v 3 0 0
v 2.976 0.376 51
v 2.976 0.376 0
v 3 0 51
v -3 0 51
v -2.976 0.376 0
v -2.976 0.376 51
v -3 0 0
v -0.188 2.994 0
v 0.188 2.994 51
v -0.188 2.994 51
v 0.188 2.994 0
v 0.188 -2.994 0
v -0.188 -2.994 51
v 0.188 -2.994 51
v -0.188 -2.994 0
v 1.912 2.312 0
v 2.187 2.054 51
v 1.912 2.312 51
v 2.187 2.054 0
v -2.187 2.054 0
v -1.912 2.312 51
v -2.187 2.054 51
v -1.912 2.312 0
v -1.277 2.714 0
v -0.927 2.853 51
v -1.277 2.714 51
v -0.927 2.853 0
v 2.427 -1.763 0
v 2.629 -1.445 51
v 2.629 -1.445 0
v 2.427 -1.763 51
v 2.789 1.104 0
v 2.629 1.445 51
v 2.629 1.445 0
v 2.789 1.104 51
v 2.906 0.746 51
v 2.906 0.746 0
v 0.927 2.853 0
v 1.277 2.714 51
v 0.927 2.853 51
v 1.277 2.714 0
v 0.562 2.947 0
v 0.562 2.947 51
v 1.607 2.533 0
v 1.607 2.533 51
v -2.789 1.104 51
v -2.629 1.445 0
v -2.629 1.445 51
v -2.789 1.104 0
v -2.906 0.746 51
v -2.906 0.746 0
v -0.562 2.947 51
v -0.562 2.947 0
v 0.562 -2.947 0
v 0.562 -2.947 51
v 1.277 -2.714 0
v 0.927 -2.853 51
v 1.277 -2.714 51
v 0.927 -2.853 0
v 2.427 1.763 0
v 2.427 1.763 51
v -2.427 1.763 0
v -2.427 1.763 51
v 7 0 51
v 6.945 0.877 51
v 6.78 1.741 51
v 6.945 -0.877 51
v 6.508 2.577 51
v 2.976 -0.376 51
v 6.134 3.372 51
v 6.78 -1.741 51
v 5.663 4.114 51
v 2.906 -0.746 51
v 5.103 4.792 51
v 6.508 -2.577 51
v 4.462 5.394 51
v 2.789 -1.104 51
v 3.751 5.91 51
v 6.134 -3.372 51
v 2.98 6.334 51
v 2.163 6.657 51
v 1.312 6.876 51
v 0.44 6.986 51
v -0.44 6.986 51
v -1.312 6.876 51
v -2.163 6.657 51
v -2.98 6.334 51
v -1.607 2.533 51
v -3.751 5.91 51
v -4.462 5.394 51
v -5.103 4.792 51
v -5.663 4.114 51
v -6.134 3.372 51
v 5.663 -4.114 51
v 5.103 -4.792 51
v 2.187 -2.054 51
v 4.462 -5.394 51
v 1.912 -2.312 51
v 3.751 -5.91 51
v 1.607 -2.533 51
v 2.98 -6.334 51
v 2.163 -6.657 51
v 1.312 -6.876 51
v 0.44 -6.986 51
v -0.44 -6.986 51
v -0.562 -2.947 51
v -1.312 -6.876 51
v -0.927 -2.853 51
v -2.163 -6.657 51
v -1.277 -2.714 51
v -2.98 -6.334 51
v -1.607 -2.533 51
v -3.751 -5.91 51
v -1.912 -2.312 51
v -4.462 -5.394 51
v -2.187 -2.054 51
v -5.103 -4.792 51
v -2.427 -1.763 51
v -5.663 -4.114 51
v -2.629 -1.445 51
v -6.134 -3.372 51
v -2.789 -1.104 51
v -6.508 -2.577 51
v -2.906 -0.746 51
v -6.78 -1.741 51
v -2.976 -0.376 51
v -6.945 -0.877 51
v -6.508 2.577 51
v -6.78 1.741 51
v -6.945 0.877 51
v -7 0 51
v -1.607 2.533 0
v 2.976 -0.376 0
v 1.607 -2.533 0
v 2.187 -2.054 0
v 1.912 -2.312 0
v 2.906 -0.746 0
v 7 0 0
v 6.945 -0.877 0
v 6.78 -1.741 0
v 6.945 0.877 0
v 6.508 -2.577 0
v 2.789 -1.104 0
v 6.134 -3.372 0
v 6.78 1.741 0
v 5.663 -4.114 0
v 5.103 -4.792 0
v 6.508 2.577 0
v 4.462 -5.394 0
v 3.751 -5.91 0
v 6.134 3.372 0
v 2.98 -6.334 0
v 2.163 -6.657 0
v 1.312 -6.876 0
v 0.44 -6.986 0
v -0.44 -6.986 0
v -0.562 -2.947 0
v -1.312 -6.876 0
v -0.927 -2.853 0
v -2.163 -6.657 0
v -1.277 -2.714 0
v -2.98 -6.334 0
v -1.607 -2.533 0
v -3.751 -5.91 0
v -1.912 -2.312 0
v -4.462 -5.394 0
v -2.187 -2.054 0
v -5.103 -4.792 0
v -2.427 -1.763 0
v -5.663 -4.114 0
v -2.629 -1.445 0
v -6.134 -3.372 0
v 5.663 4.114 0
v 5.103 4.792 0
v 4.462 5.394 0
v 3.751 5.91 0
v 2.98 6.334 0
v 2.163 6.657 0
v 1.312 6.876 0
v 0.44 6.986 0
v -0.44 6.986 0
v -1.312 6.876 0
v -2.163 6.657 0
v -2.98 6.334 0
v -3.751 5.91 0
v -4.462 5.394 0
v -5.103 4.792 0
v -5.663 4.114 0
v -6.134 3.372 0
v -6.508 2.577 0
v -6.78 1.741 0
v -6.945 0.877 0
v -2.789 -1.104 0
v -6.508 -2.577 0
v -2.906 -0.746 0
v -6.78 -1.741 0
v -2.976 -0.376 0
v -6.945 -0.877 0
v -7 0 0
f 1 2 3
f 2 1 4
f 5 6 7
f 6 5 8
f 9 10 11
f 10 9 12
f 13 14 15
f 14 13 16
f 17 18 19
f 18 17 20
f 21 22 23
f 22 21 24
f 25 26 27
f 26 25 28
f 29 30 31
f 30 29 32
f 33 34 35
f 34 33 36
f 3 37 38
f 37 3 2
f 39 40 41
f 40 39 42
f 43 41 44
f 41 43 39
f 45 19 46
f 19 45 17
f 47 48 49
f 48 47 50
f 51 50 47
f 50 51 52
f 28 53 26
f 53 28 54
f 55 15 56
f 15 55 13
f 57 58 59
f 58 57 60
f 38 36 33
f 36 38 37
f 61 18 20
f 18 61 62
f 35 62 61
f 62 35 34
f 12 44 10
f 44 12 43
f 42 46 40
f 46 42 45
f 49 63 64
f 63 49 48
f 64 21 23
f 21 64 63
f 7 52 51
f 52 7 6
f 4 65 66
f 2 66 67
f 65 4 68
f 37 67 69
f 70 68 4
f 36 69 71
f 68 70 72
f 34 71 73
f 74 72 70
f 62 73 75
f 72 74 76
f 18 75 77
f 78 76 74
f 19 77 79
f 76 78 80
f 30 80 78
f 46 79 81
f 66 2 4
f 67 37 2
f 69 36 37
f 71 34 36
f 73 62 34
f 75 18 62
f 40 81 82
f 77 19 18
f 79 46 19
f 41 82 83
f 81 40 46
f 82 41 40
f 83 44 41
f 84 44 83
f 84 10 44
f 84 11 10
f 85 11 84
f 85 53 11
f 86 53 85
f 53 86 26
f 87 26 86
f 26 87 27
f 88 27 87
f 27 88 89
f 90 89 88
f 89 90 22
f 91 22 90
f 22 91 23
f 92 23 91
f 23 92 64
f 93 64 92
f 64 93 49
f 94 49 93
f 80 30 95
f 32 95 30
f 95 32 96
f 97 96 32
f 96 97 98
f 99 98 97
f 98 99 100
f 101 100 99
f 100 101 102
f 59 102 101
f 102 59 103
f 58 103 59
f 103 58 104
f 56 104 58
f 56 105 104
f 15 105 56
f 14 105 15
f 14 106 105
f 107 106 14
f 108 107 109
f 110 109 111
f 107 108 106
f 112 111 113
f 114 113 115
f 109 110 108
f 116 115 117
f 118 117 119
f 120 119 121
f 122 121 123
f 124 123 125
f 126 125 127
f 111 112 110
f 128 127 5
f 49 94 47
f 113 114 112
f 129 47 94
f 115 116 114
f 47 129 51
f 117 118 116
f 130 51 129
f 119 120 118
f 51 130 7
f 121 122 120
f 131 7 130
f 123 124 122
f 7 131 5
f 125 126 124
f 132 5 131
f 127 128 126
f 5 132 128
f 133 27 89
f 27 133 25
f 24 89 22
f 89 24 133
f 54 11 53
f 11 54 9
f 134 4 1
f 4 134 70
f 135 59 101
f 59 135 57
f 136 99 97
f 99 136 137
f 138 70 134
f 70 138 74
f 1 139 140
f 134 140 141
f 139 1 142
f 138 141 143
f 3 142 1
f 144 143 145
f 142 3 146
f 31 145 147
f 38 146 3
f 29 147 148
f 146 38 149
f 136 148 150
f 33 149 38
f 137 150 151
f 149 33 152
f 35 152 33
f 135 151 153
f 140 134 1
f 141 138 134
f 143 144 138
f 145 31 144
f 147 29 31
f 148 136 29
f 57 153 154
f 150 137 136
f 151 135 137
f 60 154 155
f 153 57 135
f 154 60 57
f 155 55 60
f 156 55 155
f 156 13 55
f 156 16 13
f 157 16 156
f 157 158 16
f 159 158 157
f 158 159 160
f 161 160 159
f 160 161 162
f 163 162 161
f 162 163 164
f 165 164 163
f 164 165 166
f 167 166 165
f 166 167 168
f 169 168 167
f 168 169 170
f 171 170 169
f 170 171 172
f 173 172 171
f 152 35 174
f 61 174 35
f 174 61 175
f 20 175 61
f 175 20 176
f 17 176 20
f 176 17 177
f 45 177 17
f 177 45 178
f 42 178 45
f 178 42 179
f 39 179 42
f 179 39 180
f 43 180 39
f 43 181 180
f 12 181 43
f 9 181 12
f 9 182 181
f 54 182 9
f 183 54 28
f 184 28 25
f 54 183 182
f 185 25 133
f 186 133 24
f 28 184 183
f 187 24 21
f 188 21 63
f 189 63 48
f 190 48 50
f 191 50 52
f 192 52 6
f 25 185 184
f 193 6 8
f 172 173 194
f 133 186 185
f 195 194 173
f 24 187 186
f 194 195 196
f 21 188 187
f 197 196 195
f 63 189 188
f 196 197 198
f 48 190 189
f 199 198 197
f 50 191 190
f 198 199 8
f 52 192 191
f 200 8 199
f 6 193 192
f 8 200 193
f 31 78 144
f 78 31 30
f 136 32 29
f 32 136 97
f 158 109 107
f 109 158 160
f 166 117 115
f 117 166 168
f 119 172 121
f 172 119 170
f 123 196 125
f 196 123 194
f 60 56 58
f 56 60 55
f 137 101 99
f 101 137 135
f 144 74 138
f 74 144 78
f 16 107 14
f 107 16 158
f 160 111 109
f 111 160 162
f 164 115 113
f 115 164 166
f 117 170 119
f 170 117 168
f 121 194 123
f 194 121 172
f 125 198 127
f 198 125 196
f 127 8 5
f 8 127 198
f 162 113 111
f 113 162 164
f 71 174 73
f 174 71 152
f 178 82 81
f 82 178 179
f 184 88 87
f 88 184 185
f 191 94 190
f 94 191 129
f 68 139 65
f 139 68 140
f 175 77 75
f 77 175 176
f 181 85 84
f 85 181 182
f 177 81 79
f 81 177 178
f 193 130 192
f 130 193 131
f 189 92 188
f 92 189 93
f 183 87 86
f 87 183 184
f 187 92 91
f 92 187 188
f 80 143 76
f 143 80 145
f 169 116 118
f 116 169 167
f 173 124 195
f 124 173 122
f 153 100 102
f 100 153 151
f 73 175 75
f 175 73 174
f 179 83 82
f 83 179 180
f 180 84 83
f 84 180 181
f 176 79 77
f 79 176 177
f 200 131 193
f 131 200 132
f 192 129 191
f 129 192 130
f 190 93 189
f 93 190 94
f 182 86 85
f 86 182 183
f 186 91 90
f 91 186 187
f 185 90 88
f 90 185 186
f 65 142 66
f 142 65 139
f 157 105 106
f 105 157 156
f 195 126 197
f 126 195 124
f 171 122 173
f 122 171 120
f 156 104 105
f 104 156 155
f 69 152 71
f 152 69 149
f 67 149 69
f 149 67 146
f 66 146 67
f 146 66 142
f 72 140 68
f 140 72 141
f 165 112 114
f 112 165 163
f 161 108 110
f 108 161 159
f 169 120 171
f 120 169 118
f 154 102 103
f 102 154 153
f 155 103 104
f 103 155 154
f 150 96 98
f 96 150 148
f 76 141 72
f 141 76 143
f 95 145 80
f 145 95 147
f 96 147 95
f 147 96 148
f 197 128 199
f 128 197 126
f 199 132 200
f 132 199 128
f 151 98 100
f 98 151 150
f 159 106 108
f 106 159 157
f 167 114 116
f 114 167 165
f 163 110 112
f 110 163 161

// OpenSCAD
$fn = 50;


difference() {
	union() {
		cylinder(h = 51, r = 7.0000000000);
	}
	union() {
		cylinder(h = 51, r = 3.0000000000);
		cylinder(h = 51, r = 3.0000000000);
		cylinder(h = 51, r = 1.5000000000);
		cylinder(h = 51, r = 1.5000000000);
		cylinder(h = 51, r = 1.5000000000);
		cylinder(h = 51, r = 1.5000000000);
		cylinder(h = 51, r = 1.5000000000);
		cylinder(h = 51, r = 1.5000000000);
	}
}
